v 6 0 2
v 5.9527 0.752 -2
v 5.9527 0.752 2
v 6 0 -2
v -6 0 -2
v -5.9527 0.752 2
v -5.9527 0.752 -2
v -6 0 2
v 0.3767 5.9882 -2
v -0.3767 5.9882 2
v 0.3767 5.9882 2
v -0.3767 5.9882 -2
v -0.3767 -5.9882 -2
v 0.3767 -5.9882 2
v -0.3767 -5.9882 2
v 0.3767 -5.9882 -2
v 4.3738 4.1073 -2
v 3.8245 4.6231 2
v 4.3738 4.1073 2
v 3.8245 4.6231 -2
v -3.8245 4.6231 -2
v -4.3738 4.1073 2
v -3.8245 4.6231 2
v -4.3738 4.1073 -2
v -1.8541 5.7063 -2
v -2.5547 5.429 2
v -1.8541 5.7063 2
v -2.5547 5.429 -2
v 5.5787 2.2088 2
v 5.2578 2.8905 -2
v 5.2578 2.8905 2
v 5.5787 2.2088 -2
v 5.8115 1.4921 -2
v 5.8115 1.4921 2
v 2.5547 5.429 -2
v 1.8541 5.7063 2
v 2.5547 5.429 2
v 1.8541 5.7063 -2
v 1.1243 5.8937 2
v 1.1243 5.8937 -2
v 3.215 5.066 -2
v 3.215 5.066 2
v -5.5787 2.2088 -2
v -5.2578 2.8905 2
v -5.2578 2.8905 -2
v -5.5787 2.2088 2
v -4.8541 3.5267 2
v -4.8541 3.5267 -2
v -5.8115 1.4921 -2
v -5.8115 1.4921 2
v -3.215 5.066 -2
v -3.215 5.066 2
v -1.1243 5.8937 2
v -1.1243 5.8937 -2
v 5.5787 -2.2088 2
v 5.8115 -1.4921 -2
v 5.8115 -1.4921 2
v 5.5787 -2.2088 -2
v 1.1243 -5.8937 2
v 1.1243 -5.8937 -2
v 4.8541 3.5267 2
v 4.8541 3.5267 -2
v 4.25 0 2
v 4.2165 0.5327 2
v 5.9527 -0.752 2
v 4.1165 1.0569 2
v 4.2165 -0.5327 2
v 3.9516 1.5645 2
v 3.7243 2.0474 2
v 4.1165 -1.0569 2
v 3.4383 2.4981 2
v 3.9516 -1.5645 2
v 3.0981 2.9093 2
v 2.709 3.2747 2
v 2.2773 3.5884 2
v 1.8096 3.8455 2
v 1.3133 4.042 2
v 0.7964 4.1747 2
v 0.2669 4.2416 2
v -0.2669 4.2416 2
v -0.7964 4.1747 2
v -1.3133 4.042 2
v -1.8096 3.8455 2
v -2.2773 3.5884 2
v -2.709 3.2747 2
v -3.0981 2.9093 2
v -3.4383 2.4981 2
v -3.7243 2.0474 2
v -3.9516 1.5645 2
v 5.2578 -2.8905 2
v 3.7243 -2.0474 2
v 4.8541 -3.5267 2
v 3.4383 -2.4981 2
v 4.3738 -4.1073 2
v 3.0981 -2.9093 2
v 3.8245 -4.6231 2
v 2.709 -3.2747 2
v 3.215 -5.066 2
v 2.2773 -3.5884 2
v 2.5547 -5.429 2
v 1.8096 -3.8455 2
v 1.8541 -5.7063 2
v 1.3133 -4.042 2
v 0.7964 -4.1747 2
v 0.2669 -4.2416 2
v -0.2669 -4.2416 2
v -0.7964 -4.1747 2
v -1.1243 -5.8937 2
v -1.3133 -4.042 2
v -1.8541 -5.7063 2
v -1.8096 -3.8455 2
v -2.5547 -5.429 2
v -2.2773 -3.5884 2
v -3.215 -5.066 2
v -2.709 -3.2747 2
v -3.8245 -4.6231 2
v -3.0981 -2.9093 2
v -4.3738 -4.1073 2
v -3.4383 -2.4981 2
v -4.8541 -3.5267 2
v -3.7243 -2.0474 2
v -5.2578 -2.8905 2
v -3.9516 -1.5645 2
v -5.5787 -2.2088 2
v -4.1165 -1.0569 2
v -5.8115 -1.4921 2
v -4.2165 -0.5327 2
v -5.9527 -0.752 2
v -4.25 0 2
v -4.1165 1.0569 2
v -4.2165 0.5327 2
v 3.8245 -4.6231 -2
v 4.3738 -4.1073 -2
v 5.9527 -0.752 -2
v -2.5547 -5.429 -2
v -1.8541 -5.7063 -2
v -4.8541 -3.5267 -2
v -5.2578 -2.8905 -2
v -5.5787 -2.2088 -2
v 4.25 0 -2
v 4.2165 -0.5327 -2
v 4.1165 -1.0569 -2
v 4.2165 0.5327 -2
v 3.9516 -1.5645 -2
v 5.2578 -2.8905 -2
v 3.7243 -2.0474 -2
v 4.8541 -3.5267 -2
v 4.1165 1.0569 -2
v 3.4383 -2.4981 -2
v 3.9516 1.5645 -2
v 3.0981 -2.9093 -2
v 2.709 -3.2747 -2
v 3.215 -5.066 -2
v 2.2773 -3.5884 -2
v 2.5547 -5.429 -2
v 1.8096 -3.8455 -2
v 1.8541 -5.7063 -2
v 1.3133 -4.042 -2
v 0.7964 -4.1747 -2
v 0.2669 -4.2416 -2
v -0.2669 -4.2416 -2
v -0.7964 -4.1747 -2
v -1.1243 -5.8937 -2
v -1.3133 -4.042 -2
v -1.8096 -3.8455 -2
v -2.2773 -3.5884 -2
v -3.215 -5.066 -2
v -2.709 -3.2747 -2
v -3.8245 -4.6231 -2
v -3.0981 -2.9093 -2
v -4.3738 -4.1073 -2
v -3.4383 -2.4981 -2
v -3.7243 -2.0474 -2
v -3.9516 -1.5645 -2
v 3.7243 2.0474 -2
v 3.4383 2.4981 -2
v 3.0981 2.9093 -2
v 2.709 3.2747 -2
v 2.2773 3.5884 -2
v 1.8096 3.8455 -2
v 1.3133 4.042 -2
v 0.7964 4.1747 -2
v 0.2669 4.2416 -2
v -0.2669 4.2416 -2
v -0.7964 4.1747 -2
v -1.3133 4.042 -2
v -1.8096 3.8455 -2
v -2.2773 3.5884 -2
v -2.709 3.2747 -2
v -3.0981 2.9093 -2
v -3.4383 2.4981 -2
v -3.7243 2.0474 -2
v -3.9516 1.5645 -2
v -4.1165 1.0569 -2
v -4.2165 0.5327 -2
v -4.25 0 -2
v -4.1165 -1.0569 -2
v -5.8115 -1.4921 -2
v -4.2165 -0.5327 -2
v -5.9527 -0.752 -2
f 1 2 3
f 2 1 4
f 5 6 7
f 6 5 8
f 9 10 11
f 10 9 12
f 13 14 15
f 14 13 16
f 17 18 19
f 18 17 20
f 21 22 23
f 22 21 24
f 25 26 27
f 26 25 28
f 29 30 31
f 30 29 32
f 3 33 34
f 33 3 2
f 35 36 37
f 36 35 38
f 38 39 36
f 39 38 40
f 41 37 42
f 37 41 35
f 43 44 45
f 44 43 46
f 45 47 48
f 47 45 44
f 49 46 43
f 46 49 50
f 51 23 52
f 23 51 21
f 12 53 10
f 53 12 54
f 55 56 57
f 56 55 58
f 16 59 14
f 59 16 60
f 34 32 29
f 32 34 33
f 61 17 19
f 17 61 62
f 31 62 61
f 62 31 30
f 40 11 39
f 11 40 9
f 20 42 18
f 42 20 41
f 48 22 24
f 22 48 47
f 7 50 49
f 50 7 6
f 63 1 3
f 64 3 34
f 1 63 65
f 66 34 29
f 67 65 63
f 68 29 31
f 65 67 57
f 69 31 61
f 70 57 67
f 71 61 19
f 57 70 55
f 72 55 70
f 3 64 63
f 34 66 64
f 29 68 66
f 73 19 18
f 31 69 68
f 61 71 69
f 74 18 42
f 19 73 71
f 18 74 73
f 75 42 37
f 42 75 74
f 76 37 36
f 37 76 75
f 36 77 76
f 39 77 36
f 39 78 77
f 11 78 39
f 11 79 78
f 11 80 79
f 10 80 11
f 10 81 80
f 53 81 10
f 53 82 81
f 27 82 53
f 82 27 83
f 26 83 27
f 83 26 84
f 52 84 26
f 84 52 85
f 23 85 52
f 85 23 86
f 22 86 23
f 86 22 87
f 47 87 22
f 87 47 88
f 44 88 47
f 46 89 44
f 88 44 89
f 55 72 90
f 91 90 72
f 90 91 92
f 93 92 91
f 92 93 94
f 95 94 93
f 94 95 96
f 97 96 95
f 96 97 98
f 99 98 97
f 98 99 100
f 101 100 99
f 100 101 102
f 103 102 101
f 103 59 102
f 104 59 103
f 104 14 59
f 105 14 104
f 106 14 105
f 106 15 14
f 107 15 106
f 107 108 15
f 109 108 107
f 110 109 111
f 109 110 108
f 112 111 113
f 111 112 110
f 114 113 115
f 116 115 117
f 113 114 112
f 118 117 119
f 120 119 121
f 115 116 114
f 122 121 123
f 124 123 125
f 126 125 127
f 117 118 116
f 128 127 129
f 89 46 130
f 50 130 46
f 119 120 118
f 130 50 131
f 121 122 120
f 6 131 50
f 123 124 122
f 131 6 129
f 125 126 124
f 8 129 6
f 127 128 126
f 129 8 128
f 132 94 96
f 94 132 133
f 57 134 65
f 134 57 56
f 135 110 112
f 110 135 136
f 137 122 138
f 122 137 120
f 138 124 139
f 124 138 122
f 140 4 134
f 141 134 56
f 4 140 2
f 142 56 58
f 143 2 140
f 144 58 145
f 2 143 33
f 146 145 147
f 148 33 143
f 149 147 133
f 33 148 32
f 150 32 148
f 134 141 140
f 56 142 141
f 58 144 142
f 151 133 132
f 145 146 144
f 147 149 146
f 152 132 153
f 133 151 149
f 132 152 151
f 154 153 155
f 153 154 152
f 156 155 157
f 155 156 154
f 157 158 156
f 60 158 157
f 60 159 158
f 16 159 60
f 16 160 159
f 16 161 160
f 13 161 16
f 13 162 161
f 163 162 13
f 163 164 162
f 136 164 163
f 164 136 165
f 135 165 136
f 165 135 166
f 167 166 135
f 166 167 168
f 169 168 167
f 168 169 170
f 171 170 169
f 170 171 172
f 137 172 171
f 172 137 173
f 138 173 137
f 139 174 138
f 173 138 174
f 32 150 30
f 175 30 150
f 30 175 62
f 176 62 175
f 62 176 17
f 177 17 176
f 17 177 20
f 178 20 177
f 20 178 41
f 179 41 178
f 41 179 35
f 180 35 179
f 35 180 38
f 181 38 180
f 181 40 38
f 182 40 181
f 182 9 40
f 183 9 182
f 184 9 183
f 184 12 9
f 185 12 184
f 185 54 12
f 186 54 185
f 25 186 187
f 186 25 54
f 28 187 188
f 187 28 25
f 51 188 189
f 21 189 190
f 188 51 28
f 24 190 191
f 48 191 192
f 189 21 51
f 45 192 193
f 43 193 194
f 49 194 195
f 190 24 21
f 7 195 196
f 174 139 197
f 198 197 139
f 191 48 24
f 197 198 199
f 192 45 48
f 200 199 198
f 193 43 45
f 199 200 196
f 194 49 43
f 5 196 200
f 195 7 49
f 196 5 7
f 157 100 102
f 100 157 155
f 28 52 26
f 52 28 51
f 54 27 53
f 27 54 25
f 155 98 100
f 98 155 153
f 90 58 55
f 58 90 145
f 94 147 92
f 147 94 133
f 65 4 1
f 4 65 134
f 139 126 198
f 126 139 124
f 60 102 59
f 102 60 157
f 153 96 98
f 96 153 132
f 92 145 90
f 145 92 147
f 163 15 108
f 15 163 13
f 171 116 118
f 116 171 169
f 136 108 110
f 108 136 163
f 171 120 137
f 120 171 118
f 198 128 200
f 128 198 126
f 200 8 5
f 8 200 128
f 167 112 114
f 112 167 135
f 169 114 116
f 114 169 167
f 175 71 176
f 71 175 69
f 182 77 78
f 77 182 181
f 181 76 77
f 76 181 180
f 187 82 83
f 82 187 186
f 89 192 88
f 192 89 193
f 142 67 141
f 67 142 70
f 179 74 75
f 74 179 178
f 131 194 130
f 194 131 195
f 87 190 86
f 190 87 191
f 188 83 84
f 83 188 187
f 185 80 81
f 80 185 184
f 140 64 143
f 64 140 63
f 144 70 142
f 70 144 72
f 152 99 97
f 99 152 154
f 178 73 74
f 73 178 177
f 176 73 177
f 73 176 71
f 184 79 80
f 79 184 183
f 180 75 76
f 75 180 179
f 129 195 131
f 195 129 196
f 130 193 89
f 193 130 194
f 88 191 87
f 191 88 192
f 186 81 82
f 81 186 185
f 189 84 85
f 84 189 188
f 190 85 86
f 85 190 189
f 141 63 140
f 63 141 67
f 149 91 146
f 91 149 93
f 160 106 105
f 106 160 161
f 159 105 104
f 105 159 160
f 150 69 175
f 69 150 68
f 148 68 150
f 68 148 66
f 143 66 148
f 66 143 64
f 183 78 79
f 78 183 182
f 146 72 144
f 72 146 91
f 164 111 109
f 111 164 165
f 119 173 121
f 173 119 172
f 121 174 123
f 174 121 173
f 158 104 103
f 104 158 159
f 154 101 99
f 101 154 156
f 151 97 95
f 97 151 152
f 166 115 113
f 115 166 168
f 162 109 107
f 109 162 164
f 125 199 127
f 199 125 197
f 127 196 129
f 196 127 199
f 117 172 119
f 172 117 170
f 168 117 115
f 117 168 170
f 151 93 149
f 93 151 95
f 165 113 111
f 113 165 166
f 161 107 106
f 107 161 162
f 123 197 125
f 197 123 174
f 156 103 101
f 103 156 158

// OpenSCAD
$fn = 50;


difference() {
	union() {
		translate(v = [0, 0, -2.0000000000]) {
			cylinder(h = 4, r = 6.0000000000);
		}
	}
	union() {
		translate(v = [0, 0, -100.0000000000]) {
			cylinder(h = 200, r = 4.2500000000);
		}
	}
}
